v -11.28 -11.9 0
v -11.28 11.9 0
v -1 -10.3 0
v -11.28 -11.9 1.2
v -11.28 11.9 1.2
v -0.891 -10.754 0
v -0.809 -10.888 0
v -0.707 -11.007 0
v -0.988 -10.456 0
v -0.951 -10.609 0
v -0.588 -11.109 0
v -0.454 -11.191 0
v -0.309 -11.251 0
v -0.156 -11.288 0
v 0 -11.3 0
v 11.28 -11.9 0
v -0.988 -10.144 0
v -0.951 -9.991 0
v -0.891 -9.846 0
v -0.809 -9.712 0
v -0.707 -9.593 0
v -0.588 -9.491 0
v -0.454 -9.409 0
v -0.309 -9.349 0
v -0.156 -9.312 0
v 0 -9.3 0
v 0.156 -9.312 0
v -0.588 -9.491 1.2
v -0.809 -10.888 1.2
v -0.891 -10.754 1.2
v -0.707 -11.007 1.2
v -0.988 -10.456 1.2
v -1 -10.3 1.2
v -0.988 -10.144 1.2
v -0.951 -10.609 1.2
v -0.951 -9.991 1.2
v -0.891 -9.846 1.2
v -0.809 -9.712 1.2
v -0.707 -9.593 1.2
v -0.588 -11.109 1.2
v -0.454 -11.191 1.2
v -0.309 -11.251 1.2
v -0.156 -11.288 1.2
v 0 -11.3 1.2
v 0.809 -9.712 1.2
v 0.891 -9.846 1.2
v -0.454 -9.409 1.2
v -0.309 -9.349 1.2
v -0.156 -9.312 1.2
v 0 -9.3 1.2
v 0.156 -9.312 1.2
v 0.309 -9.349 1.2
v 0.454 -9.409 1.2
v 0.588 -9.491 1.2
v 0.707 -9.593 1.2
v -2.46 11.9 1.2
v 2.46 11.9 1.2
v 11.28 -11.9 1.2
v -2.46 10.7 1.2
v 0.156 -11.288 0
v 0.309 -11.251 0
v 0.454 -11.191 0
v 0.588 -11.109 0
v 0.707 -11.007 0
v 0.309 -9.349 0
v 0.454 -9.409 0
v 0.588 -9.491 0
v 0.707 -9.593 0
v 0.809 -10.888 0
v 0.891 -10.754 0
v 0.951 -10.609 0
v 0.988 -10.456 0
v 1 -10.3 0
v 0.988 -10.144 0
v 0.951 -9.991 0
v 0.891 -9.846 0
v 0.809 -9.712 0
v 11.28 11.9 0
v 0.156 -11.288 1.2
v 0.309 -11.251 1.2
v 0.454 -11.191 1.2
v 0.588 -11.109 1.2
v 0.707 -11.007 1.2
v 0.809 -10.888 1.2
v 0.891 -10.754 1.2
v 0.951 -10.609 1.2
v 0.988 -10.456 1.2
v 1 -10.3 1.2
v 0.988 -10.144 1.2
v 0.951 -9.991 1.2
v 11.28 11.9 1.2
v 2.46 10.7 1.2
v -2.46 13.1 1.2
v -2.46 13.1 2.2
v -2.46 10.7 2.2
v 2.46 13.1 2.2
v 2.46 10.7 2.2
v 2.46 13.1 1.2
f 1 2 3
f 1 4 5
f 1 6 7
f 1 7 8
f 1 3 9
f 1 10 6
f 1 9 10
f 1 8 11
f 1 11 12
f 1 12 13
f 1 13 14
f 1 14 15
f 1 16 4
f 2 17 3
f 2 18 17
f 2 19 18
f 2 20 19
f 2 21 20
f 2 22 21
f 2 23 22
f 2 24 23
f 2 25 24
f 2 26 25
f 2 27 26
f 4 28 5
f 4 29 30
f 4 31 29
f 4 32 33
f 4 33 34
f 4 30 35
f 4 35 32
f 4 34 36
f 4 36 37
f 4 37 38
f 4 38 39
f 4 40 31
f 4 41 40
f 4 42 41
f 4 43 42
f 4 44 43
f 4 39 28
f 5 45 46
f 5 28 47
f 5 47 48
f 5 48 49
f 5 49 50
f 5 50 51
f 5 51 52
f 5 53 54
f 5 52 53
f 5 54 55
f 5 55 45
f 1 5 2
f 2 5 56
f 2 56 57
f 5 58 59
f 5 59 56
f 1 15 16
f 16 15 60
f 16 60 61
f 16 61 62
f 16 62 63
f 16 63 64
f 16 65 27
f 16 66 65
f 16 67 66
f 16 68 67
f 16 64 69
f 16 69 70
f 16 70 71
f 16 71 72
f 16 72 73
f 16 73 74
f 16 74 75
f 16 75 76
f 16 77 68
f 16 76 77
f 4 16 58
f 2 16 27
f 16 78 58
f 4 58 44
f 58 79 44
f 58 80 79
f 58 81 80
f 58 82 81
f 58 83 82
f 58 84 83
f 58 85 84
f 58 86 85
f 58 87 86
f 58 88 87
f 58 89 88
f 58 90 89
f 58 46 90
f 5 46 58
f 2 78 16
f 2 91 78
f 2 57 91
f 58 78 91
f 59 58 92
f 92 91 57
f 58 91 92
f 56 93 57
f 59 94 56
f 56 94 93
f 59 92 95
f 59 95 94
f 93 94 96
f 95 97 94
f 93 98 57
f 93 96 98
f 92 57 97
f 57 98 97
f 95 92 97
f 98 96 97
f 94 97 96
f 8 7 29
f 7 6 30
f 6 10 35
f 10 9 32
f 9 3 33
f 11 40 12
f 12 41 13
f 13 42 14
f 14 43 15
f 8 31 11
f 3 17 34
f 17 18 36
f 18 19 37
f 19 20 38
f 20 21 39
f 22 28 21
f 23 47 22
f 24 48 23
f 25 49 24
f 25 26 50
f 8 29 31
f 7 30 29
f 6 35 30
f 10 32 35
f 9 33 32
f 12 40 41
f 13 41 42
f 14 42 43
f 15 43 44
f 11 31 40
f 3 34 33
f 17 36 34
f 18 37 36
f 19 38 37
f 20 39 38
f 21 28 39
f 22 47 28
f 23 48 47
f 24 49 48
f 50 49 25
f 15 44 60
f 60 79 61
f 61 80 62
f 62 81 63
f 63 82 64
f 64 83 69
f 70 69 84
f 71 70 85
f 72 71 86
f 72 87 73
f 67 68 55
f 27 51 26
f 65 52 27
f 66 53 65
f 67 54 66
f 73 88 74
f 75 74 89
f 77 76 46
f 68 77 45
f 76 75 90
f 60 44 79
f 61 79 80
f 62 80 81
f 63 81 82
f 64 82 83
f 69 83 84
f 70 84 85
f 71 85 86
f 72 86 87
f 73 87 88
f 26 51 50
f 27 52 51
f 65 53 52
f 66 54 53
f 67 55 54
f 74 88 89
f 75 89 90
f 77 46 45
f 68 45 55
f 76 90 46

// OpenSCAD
// ============================================================
// 하우징 Peltier v2 - housing_peltier_closure2_v2 (별도 부품)
// housing_erm_closure2_v2를 그대로 가져옴
// ============================================================

module housing_peltier_closure2_v2() {
    plate_w = 22.56; // 가로
    plate_h = 23.8;  // 세로 (25 -> 1.2mm 감소)
    plate_t = 1.2;   // 판재 두께

    // 돌출 탭: housing_peltier_closure1_v2와 동일한 구조.
    // 가로 4.92mm. 세로(Y)는 +Y쪽 가장자리 기준 면 위에 1.2mm 걸치고(overlap)
    // 바깥으로 1.2mm 튀어나옴(protrude) = 총 2.4mm. 판재 위에 tab_z만큼 돌출.
    tab_w        = 4.92; // 가로 (4.96 -> 4.92)
    tab_protrude = 1.2;  // 3D 기준 +Y 방향으로 면 바깥으로 튀어나오는 길이
    tab_overlap  = 1.2;  // 면 위에 걸쳐있는 길이 (+Y쪽 가장자리에서 안쪽으로)
    tab_len      = tab_protrude + tab_overlap; // 세로 전체 길이 (2.4mm)
    tab_z        = 1;    // 돌출부가 판재 위로 추가로 튀어나오는 두께(높이)

    // 나사 구멍: 정사각형 중심(=판재 중심)에서 Y축 음수 방향으로 10.3mm 떨어진 위치.
    // 보스 없이 Z축 방향(판재를 관통)으로 뚫림.
    screw_d = 2;
    screw_y = -10.3;

    echo("[PeltierClosure2] tab_w =", tab_w, " tab_len =", tab_len, " tab_z =", tab_z);
    echo("[PeltierClosure2] screw_y =", screw_y);

    difference() {
        union() {
            // 메인 평판 (정사각형 구멍 없이 막힘)
            color("gray")
                linear_extrude(height = plate_t)
                    square([plate_w, plate_h], center = true);

            // 윗변 돌출 탭 (실제 3D, 판재 위에 Z 깊이 tab_z 추가), 윗변 바깥쪽으로 튀어나옴.
            color("SteelBlue")
                translate([0, plate_h / 2 - tab_overlap + tab_len / 2, plate_t])
                    linear_extrude(height = tab_z)
                        square([tab_w, tab_len], center = true);
        }

        // 나사 구멍 (Z방향 관통), 정사각형 중심에서 Y축 음수방향 10.3mm
        translate([0, screw_y, -0.1])
            cylinder(d = screw_d, h = plate_t + 0.2, $fn = 40);
    }
}

housing_peltier_closure2_v2();
